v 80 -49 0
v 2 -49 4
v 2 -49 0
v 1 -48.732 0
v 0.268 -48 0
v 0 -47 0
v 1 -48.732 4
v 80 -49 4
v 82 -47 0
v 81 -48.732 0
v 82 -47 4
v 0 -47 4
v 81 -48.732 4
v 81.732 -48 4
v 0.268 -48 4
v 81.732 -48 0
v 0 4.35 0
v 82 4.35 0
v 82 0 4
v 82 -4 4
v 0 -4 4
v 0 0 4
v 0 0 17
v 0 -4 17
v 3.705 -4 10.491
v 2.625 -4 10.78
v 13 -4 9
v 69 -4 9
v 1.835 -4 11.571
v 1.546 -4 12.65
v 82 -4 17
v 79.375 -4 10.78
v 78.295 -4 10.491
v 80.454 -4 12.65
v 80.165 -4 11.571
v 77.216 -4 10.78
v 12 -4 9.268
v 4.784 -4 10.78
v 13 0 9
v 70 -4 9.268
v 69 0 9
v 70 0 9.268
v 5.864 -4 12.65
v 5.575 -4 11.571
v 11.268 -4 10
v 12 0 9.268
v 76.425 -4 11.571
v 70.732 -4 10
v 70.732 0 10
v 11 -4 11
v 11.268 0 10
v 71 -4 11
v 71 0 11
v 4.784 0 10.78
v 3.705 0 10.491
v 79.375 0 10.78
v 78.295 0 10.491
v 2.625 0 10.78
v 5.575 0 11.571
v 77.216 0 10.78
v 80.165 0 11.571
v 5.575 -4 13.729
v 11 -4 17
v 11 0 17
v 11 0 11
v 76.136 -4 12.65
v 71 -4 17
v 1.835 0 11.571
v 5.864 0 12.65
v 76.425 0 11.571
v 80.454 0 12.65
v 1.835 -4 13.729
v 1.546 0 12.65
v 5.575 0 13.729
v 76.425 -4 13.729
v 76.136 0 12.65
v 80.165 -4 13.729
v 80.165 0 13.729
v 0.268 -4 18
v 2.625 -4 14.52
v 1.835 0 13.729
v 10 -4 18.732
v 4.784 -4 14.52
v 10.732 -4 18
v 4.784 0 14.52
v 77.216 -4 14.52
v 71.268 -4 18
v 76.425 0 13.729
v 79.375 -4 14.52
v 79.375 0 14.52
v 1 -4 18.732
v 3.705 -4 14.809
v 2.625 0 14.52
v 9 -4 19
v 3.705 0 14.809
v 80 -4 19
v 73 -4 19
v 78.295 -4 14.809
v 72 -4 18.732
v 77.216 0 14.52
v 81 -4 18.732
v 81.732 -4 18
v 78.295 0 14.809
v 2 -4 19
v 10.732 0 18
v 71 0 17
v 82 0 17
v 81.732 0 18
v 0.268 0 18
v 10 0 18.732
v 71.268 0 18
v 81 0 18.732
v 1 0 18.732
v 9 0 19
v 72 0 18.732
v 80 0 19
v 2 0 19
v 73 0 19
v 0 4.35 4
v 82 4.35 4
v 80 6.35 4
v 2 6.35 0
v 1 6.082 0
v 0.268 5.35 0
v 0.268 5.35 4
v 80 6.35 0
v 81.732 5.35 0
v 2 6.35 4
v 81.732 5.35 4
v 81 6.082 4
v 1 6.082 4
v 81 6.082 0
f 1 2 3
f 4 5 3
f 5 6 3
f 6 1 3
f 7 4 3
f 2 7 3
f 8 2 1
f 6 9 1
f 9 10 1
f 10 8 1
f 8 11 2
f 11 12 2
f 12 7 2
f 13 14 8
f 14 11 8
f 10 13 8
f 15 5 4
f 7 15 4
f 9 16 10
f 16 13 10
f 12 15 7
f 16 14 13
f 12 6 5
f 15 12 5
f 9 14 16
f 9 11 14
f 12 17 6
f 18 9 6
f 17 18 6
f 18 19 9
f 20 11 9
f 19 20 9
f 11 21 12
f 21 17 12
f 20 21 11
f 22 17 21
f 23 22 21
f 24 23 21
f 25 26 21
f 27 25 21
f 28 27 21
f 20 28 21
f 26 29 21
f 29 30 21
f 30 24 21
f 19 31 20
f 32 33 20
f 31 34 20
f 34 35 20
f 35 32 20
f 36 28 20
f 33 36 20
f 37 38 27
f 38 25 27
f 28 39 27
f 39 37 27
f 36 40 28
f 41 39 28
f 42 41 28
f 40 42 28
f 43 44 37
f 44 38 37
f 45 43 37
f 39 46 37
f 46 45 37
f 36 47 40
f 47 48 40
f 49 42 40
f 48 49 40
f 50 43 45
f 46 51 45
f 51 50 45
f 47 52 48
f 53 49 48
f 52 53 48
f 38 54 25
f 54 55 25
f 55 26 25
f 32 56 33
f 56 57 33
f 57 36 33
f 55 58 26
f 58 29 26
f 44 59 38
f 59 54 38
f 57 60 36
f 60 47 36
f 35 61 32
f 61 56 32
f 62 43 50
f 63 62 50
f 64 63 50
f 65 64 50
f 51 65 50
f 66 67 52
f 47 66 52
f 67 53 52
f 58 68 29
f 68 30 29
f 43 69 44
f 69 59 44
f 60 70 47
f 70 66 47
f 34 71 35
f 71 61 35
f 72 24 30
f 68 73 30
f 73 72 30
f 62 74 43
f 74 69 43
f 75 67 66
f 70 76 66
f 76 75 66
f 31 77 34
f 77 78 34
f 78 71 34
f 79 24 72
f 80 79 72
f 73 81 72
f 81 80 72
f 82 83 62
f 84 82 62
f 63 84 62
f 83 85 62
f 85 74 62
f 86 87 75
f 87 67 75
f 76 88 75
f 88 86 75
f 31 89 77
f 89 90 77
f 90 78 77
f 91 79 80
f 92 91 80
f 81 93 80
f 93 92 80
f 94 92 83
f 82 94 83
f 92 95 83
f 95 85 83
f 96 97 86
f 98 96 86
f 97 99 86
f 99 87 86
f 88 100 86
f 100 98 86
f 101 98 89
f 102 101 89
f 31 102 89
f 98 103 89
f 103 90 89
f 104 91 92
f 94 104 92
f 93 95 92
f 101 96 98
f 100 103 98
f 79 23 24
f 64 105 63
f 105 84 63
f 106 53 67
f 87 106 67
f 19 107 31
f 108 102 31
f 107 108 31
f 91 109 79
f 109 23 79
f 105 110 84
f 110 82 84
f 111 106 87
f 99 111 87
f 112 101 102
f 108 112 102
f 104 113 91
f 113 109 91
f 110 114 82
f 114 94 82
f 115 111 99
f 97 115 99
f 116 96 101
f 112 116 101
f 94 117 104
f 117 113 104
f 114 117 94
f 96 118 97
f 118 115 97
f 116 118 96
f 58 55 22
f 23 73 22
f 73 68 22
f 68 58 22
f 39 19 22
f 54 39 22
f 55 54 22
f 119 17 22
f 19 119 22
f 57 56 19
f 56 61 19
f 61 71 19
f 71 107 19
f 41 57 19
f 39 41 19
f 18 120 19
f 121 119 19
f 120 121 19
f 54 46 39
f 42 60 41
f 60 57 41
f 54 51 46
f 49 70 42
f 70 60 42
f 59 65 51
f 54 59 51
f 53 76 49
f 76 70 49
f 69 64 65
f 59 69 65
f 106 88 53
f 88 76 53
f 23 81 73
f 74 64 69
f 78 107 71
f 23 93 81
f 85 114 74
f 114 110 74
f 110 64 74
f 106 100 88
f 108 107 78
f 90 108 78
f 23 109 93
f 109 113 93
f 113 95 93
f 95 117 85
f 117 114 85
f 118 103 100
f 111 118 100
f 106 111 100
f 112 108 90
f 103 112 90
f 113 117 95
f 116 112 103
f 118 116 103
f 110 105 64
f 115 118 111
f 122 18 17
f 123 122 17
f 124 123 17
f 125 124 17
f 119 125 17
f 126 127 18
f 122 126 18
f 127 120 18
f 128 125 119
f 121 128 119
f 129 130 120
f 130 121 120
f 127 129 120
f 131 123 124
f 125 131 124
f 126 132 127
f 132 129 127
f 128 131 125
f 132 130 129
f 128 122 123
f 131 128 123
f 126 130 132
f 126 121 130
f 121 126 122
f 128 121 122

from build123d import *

# Parameters (mm, degrees)
SKETCH1_W           = 82
SKETCH1_H           = 49
BOSS_EXTRUDE1_DEPTH = 4
SKETCH2_W           = 82
SKETCH2_H           = 4
BOSS_EXTRUDE2_DEPTH = 15
SKETCH3_R           = 2.159
CUT_EXTRUDE1_DEPTH  = 50
SKETCH4_W           = 82
SKETCH4_H           = 4
BOSS_EXTRUDE3_DEPTH = 6.35
SKETCH5_W           = 60
SKETCH5_H           = 4
CUT_EXTRUDE2_DEPTH  = 10
FILLET1_R           = 2


with BuildPart() as part:
    # Sketch1 → Boss-Extrude1 (new body)
    with BuildSketch(Plane.XY):
        with Locations((41, -24.5)):
            Rectangle(SKETCH1_W, SKETCH1_H)
    extrude(amount=BOSS_EXTRUDE1_DEPTH)

    # Sketch2 → Boss-Extrude2 (add)
    with BuildSketch(Plane.XY.offset(4)):
        with Locations((41, -2)):
            Rectangle(SKETCH2_W, SKETCH2_H)
    extrude(amount=BOSS_EXTRUDE2_DEPTH)

    # Sketch3 → Cut-Extrude1 (cut, through all)
    with BuildSketch(Plane(origin=(0, 0, 0), x_dir=(1, 0, 0), z_dir=(0, 1, 0))):
        with Locations((3.704833995, -12.65)):
            Circle(SKETCH3_R)
        with Locations((78.295166005, -12.65)):
            Circle(SKETCH3_R)
    extrude(amount=-CUT_EXTRUDE1_DEPTH, mode=Mode.SUBTRACT)

    # Sketch4 → Boss-Extrude3 (add)
    with BuildSketch(Plane(origin=(0, 0, 0), x_dir=(1, 0, 0), z_dir=(0, 1, 0))):
        with Locations((41, -2)):
            Rectangle(SKETCH4_W, SKETCH4_H)
    extrude(amount=BOSS_EXTRUDE3_DEPTH)

    # Sketch5 → Cut-Extrude2 (cut)
    with BuildSketch(Plane.XY.offset(19)):
        with Locations((41, -2)):
            Rectangle(SKETCH5_W, SKETCH5_H)
    extrude(amount=-CUT_EXTRUDE2_DEPTH, mode=Mode.SUBTRACT)

    # Fillet1
    fillet1_edges = [part.edges().sort_by_distance(p)[0] for p in [
        (0, -2, 19),
        (82, -2, 19),
        (0, 6.35, 2),
        (82, 6.35, 2),
        (71, -2, 9),
        (11, -2, 9),
        (71, -2, 19),
        (11, -2, 19),
        (82, -49, 2),
        (0, -49, 2),
    ]]
    fillet(fillet1_edges, radius=FILLET1_R)


solid = part.part
